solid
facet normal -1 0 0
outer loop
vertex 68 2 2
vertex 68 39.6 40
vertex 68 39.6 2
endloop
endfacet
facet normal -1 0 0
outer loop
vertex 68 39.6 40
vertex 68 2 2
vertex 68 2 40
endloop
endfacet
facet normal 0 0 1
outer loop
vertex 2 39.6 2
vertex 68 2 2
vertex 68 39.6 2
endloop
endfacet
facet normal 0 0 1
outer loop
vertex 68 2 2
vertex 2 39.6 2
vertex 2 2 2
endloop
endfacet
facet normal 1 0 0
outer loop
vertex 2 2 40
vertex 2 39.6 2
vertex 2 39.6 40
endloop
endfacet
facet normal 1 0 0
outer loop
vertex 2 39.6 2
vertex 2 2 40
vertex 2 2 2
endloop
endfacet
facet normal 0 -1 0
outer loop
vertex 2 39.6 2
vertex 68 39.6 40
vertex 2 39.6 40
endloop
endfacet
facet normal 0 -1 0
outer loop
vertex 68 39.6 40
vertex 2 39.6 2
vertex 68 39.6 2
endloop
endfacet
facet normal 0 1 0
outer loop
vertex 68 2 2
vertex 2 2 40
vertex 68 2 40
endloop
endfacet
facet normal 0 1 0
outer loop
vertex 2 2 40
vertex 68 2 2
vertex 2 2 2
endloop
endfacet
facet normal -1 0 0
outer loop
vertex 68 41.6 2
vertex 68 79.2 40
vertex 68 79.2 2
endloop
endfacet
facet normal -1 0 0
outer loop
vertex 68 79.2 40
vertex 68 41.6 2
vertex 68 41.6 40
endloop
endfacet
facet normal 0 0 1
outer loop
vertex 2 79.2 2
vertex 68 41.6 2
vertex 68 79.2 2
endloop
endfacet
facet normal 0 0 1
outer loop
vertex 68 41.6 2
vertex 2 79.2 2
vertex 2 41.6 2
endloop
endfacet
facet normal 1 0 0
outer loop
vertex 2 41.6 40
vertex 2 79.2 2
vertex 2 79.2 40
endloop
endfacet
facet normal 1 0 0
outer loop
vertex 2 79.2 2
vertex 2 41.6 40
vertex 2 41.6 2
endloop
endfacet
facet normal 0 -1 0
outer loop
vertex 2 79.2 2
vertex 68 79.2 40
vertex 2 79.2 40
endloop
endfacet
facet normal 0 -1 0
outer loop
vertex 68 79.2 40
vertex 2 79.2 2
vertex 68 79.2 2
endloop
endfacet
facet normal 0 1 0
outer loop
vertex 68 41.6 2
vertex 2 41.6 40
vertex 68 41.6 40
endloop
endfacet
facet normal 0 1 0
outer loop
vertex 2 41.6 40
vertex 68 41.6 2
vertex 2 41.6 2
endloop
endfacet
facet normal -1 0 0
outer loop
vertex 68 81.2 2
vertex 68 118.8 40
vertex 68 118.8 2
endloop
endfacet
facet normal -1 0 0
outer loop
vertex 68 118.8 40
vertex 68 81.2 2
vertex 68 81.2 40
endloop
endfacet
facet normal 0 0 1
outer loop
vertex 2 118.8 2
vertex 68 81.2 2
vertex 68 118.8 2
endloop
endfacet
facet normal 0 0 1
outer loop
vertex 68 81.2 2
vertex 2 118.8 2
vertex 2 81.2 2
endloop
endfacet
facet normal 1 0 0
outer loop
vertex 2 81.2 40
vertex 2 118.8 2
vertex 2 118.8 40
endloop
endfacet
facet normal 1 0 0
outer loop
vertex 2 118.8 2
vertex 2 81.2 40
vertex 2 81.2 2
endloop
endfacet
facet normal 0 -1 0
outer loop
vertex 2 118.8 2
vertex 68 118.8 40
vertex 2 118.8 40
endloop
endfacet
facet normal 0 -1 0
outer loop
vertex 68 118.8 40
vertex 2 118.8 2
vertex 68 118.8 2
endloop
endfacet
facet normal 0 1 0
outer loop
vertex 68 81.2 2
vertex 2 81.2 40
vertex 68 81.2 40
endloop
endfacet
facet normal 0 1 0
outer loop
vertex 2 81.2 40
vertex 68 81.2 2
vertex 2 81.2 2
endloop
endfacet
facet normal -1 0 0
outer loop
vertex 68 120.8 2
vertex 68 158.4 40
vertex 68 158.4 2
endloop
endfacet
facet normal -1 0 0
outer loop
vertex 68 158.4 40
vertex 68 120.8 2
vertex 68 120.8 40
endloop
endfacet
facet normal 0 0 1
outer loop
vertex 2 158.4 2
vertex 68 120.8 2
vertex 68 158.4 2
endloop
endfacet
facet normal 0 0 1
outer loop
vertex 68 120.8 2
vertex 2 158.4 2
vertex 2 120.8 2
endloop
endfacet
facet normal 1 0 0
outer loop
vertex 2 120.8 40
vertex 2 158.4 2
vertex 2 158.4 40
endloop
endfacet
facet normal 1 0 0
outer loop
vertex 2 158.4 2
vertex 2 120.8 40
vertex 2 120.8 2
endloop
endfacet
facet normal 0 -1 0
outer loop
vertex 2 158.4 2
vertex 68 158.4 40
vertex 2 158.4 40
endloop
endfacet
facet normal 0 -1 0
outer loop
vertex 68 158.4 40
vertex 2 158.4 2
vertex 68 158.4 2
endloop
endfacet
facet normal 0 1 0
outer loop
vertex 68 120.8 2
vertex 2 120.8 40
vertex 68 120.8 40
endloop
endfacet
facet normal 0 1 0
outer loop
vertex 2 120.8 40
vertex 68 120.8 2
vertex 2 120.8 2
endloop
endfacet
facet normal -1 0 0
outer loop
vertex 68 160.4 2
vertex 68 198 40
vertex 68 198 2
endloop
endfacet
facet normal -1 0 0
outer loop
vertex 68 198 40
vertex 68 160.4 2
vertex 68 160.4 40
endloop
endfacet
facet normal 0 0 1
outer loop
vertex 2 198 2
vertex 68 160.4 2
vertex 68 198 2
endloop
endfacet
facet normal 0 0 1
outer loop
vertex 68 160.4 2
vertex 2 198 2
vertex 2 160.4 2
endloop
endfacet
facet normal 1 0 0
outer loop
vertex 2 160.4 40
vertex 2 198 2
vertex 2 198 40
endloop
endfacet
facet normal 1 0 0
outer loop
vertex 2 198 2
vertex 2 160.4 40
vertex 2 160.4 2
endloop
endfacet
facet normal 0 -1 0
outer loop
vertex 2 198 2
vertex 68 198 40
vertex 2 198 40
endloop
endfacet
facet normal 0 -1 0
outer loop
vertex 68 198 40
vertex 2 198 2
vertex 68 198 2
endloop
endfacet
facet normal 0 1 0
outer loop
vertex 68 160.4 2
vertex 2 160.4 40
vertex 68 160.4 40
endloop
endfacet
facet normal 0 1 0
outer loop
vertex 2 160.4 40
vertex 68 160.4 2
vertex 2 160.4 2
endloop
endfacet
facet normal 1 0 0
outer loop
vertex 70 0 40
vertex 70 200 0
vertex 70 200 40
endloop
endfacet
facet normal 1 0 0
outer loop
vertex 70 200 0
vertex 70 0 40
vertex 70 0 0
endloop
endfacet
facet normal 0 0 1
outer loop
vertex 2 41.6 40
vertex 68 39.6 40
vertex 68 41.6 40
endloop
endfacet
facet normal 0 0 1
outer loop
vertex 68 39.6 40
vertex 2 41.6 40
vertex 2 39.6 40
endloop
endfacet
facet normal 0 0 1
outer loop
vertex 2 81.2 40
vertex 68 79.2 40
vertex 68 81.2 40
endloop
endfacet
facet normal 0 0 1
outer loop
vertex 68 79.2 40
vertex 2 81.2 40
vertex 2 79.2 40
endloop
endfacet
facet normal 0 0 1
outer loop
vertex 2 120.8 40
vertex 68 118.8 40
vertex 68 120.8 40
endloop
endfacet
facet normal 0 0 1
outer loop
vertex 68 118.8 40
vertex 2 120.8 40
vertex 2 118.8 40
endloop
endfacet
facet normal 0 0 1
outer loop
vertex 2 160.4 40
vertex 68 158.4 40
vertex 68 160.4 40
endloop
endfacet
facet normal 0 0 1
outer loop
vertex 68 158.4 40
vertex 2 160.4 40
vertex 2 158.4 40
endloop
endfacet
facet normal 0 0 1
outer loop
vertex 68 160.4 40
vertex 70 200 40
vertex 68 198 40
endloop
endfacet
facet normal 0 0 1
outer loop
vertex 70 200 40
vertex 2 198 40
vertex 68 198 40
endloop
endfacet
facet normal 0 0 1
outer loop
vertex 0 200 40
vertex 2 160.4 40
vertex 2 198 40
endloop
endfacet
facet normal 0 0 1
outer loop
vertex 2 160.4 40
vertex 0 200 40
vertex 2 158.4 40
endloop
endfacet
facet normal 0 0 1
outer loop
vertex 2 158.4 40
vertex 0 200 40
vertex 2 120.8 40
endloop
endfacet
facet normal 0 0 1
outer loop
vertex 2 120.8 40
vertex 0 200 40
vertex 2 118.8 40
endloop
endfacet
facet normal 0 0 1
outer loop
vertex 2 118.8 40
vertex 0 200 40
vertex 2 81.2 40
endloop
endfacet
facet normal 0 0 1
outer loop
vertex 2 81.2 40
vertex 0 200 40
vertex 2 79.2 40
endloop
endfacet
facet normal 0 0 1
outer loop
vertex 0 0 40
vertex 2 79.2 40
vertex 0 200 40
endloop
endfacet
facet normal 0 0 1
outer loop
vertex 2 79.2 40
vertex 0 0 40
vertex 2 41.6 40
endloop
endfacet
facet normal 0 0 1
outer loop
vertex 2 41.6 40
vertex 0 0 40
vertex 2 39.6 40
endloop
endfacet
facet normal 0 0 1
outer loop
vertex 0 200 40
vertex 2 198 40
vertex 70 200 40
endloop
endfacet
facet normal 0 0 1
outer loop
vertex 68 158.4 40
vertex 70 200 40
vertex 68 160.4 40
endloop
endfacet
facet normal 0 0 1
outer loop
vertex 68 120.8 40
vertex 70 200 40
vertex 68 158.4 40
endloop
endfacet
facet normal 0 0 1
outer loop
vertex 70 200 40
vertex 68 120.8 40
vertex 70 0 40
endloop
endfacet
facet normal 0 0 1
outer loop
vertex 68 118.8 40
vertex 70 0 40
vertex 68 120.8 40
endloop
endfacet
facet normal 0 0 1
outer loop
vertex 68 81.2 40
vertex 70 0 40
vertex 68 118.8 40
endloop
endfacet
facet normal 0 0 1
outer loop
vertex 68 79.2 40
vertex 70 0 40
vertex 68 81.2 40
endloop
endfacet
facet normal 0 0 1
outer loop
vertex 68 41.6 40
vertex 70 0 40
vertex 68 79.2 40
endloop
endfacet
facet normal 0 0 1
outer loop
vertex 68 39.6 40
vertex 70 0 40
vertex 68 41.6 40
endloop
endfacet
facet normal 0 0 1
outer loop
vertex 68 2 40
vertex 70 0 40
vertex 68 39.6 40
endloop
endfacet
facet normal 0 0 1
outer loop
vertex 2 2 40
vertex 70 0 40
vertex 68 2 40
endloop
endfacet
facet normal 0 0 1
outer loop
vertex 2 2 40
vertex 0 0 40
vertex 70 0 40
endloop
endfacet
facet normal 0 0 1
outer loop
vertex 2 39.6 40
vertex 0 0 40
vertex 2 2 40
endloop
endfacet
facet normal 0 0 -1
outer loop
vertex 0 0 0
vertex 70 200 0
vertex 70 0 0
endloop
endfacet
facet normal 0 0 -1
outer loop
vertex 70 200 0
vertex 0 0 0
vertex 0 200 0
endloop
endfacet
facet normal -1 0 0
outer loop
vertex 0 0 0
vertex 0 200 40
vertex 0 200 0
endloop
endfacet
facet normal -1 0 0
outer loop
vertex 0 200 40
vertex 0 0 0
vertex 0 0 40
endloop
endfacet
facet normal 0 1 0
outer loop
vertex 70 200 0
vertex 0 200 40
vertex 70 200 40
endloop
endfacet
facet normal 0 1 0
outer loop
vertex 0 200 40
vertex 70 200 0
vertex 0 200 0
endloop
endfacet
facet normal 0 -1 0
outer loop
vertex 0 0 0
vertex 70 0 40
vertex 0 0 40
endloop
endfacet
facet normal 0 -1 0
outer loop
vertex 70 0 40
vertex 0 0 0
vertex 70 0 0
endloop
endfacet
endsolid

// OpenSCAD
// Parametric spice box
width = 70;
depth = 200;
height = 40;
thickness = 2;
compartments = 5; // number of compartments in the depth direction

// Derived values
compartmentWidth = width - 2 * thickness;
compartmentDepth = (depth - (compartments + 1) * thickness) / compartments;

difference() {
    cube([width, depth, height]);

    for (i = [0 : compartments - 1]) {
        translate([
            thickness,
            thickness + i * (compartmentDepth + thickness),
            thickness
        ])
        cube([compartmentWidth, compartmentDepth, height]);
    }
}
